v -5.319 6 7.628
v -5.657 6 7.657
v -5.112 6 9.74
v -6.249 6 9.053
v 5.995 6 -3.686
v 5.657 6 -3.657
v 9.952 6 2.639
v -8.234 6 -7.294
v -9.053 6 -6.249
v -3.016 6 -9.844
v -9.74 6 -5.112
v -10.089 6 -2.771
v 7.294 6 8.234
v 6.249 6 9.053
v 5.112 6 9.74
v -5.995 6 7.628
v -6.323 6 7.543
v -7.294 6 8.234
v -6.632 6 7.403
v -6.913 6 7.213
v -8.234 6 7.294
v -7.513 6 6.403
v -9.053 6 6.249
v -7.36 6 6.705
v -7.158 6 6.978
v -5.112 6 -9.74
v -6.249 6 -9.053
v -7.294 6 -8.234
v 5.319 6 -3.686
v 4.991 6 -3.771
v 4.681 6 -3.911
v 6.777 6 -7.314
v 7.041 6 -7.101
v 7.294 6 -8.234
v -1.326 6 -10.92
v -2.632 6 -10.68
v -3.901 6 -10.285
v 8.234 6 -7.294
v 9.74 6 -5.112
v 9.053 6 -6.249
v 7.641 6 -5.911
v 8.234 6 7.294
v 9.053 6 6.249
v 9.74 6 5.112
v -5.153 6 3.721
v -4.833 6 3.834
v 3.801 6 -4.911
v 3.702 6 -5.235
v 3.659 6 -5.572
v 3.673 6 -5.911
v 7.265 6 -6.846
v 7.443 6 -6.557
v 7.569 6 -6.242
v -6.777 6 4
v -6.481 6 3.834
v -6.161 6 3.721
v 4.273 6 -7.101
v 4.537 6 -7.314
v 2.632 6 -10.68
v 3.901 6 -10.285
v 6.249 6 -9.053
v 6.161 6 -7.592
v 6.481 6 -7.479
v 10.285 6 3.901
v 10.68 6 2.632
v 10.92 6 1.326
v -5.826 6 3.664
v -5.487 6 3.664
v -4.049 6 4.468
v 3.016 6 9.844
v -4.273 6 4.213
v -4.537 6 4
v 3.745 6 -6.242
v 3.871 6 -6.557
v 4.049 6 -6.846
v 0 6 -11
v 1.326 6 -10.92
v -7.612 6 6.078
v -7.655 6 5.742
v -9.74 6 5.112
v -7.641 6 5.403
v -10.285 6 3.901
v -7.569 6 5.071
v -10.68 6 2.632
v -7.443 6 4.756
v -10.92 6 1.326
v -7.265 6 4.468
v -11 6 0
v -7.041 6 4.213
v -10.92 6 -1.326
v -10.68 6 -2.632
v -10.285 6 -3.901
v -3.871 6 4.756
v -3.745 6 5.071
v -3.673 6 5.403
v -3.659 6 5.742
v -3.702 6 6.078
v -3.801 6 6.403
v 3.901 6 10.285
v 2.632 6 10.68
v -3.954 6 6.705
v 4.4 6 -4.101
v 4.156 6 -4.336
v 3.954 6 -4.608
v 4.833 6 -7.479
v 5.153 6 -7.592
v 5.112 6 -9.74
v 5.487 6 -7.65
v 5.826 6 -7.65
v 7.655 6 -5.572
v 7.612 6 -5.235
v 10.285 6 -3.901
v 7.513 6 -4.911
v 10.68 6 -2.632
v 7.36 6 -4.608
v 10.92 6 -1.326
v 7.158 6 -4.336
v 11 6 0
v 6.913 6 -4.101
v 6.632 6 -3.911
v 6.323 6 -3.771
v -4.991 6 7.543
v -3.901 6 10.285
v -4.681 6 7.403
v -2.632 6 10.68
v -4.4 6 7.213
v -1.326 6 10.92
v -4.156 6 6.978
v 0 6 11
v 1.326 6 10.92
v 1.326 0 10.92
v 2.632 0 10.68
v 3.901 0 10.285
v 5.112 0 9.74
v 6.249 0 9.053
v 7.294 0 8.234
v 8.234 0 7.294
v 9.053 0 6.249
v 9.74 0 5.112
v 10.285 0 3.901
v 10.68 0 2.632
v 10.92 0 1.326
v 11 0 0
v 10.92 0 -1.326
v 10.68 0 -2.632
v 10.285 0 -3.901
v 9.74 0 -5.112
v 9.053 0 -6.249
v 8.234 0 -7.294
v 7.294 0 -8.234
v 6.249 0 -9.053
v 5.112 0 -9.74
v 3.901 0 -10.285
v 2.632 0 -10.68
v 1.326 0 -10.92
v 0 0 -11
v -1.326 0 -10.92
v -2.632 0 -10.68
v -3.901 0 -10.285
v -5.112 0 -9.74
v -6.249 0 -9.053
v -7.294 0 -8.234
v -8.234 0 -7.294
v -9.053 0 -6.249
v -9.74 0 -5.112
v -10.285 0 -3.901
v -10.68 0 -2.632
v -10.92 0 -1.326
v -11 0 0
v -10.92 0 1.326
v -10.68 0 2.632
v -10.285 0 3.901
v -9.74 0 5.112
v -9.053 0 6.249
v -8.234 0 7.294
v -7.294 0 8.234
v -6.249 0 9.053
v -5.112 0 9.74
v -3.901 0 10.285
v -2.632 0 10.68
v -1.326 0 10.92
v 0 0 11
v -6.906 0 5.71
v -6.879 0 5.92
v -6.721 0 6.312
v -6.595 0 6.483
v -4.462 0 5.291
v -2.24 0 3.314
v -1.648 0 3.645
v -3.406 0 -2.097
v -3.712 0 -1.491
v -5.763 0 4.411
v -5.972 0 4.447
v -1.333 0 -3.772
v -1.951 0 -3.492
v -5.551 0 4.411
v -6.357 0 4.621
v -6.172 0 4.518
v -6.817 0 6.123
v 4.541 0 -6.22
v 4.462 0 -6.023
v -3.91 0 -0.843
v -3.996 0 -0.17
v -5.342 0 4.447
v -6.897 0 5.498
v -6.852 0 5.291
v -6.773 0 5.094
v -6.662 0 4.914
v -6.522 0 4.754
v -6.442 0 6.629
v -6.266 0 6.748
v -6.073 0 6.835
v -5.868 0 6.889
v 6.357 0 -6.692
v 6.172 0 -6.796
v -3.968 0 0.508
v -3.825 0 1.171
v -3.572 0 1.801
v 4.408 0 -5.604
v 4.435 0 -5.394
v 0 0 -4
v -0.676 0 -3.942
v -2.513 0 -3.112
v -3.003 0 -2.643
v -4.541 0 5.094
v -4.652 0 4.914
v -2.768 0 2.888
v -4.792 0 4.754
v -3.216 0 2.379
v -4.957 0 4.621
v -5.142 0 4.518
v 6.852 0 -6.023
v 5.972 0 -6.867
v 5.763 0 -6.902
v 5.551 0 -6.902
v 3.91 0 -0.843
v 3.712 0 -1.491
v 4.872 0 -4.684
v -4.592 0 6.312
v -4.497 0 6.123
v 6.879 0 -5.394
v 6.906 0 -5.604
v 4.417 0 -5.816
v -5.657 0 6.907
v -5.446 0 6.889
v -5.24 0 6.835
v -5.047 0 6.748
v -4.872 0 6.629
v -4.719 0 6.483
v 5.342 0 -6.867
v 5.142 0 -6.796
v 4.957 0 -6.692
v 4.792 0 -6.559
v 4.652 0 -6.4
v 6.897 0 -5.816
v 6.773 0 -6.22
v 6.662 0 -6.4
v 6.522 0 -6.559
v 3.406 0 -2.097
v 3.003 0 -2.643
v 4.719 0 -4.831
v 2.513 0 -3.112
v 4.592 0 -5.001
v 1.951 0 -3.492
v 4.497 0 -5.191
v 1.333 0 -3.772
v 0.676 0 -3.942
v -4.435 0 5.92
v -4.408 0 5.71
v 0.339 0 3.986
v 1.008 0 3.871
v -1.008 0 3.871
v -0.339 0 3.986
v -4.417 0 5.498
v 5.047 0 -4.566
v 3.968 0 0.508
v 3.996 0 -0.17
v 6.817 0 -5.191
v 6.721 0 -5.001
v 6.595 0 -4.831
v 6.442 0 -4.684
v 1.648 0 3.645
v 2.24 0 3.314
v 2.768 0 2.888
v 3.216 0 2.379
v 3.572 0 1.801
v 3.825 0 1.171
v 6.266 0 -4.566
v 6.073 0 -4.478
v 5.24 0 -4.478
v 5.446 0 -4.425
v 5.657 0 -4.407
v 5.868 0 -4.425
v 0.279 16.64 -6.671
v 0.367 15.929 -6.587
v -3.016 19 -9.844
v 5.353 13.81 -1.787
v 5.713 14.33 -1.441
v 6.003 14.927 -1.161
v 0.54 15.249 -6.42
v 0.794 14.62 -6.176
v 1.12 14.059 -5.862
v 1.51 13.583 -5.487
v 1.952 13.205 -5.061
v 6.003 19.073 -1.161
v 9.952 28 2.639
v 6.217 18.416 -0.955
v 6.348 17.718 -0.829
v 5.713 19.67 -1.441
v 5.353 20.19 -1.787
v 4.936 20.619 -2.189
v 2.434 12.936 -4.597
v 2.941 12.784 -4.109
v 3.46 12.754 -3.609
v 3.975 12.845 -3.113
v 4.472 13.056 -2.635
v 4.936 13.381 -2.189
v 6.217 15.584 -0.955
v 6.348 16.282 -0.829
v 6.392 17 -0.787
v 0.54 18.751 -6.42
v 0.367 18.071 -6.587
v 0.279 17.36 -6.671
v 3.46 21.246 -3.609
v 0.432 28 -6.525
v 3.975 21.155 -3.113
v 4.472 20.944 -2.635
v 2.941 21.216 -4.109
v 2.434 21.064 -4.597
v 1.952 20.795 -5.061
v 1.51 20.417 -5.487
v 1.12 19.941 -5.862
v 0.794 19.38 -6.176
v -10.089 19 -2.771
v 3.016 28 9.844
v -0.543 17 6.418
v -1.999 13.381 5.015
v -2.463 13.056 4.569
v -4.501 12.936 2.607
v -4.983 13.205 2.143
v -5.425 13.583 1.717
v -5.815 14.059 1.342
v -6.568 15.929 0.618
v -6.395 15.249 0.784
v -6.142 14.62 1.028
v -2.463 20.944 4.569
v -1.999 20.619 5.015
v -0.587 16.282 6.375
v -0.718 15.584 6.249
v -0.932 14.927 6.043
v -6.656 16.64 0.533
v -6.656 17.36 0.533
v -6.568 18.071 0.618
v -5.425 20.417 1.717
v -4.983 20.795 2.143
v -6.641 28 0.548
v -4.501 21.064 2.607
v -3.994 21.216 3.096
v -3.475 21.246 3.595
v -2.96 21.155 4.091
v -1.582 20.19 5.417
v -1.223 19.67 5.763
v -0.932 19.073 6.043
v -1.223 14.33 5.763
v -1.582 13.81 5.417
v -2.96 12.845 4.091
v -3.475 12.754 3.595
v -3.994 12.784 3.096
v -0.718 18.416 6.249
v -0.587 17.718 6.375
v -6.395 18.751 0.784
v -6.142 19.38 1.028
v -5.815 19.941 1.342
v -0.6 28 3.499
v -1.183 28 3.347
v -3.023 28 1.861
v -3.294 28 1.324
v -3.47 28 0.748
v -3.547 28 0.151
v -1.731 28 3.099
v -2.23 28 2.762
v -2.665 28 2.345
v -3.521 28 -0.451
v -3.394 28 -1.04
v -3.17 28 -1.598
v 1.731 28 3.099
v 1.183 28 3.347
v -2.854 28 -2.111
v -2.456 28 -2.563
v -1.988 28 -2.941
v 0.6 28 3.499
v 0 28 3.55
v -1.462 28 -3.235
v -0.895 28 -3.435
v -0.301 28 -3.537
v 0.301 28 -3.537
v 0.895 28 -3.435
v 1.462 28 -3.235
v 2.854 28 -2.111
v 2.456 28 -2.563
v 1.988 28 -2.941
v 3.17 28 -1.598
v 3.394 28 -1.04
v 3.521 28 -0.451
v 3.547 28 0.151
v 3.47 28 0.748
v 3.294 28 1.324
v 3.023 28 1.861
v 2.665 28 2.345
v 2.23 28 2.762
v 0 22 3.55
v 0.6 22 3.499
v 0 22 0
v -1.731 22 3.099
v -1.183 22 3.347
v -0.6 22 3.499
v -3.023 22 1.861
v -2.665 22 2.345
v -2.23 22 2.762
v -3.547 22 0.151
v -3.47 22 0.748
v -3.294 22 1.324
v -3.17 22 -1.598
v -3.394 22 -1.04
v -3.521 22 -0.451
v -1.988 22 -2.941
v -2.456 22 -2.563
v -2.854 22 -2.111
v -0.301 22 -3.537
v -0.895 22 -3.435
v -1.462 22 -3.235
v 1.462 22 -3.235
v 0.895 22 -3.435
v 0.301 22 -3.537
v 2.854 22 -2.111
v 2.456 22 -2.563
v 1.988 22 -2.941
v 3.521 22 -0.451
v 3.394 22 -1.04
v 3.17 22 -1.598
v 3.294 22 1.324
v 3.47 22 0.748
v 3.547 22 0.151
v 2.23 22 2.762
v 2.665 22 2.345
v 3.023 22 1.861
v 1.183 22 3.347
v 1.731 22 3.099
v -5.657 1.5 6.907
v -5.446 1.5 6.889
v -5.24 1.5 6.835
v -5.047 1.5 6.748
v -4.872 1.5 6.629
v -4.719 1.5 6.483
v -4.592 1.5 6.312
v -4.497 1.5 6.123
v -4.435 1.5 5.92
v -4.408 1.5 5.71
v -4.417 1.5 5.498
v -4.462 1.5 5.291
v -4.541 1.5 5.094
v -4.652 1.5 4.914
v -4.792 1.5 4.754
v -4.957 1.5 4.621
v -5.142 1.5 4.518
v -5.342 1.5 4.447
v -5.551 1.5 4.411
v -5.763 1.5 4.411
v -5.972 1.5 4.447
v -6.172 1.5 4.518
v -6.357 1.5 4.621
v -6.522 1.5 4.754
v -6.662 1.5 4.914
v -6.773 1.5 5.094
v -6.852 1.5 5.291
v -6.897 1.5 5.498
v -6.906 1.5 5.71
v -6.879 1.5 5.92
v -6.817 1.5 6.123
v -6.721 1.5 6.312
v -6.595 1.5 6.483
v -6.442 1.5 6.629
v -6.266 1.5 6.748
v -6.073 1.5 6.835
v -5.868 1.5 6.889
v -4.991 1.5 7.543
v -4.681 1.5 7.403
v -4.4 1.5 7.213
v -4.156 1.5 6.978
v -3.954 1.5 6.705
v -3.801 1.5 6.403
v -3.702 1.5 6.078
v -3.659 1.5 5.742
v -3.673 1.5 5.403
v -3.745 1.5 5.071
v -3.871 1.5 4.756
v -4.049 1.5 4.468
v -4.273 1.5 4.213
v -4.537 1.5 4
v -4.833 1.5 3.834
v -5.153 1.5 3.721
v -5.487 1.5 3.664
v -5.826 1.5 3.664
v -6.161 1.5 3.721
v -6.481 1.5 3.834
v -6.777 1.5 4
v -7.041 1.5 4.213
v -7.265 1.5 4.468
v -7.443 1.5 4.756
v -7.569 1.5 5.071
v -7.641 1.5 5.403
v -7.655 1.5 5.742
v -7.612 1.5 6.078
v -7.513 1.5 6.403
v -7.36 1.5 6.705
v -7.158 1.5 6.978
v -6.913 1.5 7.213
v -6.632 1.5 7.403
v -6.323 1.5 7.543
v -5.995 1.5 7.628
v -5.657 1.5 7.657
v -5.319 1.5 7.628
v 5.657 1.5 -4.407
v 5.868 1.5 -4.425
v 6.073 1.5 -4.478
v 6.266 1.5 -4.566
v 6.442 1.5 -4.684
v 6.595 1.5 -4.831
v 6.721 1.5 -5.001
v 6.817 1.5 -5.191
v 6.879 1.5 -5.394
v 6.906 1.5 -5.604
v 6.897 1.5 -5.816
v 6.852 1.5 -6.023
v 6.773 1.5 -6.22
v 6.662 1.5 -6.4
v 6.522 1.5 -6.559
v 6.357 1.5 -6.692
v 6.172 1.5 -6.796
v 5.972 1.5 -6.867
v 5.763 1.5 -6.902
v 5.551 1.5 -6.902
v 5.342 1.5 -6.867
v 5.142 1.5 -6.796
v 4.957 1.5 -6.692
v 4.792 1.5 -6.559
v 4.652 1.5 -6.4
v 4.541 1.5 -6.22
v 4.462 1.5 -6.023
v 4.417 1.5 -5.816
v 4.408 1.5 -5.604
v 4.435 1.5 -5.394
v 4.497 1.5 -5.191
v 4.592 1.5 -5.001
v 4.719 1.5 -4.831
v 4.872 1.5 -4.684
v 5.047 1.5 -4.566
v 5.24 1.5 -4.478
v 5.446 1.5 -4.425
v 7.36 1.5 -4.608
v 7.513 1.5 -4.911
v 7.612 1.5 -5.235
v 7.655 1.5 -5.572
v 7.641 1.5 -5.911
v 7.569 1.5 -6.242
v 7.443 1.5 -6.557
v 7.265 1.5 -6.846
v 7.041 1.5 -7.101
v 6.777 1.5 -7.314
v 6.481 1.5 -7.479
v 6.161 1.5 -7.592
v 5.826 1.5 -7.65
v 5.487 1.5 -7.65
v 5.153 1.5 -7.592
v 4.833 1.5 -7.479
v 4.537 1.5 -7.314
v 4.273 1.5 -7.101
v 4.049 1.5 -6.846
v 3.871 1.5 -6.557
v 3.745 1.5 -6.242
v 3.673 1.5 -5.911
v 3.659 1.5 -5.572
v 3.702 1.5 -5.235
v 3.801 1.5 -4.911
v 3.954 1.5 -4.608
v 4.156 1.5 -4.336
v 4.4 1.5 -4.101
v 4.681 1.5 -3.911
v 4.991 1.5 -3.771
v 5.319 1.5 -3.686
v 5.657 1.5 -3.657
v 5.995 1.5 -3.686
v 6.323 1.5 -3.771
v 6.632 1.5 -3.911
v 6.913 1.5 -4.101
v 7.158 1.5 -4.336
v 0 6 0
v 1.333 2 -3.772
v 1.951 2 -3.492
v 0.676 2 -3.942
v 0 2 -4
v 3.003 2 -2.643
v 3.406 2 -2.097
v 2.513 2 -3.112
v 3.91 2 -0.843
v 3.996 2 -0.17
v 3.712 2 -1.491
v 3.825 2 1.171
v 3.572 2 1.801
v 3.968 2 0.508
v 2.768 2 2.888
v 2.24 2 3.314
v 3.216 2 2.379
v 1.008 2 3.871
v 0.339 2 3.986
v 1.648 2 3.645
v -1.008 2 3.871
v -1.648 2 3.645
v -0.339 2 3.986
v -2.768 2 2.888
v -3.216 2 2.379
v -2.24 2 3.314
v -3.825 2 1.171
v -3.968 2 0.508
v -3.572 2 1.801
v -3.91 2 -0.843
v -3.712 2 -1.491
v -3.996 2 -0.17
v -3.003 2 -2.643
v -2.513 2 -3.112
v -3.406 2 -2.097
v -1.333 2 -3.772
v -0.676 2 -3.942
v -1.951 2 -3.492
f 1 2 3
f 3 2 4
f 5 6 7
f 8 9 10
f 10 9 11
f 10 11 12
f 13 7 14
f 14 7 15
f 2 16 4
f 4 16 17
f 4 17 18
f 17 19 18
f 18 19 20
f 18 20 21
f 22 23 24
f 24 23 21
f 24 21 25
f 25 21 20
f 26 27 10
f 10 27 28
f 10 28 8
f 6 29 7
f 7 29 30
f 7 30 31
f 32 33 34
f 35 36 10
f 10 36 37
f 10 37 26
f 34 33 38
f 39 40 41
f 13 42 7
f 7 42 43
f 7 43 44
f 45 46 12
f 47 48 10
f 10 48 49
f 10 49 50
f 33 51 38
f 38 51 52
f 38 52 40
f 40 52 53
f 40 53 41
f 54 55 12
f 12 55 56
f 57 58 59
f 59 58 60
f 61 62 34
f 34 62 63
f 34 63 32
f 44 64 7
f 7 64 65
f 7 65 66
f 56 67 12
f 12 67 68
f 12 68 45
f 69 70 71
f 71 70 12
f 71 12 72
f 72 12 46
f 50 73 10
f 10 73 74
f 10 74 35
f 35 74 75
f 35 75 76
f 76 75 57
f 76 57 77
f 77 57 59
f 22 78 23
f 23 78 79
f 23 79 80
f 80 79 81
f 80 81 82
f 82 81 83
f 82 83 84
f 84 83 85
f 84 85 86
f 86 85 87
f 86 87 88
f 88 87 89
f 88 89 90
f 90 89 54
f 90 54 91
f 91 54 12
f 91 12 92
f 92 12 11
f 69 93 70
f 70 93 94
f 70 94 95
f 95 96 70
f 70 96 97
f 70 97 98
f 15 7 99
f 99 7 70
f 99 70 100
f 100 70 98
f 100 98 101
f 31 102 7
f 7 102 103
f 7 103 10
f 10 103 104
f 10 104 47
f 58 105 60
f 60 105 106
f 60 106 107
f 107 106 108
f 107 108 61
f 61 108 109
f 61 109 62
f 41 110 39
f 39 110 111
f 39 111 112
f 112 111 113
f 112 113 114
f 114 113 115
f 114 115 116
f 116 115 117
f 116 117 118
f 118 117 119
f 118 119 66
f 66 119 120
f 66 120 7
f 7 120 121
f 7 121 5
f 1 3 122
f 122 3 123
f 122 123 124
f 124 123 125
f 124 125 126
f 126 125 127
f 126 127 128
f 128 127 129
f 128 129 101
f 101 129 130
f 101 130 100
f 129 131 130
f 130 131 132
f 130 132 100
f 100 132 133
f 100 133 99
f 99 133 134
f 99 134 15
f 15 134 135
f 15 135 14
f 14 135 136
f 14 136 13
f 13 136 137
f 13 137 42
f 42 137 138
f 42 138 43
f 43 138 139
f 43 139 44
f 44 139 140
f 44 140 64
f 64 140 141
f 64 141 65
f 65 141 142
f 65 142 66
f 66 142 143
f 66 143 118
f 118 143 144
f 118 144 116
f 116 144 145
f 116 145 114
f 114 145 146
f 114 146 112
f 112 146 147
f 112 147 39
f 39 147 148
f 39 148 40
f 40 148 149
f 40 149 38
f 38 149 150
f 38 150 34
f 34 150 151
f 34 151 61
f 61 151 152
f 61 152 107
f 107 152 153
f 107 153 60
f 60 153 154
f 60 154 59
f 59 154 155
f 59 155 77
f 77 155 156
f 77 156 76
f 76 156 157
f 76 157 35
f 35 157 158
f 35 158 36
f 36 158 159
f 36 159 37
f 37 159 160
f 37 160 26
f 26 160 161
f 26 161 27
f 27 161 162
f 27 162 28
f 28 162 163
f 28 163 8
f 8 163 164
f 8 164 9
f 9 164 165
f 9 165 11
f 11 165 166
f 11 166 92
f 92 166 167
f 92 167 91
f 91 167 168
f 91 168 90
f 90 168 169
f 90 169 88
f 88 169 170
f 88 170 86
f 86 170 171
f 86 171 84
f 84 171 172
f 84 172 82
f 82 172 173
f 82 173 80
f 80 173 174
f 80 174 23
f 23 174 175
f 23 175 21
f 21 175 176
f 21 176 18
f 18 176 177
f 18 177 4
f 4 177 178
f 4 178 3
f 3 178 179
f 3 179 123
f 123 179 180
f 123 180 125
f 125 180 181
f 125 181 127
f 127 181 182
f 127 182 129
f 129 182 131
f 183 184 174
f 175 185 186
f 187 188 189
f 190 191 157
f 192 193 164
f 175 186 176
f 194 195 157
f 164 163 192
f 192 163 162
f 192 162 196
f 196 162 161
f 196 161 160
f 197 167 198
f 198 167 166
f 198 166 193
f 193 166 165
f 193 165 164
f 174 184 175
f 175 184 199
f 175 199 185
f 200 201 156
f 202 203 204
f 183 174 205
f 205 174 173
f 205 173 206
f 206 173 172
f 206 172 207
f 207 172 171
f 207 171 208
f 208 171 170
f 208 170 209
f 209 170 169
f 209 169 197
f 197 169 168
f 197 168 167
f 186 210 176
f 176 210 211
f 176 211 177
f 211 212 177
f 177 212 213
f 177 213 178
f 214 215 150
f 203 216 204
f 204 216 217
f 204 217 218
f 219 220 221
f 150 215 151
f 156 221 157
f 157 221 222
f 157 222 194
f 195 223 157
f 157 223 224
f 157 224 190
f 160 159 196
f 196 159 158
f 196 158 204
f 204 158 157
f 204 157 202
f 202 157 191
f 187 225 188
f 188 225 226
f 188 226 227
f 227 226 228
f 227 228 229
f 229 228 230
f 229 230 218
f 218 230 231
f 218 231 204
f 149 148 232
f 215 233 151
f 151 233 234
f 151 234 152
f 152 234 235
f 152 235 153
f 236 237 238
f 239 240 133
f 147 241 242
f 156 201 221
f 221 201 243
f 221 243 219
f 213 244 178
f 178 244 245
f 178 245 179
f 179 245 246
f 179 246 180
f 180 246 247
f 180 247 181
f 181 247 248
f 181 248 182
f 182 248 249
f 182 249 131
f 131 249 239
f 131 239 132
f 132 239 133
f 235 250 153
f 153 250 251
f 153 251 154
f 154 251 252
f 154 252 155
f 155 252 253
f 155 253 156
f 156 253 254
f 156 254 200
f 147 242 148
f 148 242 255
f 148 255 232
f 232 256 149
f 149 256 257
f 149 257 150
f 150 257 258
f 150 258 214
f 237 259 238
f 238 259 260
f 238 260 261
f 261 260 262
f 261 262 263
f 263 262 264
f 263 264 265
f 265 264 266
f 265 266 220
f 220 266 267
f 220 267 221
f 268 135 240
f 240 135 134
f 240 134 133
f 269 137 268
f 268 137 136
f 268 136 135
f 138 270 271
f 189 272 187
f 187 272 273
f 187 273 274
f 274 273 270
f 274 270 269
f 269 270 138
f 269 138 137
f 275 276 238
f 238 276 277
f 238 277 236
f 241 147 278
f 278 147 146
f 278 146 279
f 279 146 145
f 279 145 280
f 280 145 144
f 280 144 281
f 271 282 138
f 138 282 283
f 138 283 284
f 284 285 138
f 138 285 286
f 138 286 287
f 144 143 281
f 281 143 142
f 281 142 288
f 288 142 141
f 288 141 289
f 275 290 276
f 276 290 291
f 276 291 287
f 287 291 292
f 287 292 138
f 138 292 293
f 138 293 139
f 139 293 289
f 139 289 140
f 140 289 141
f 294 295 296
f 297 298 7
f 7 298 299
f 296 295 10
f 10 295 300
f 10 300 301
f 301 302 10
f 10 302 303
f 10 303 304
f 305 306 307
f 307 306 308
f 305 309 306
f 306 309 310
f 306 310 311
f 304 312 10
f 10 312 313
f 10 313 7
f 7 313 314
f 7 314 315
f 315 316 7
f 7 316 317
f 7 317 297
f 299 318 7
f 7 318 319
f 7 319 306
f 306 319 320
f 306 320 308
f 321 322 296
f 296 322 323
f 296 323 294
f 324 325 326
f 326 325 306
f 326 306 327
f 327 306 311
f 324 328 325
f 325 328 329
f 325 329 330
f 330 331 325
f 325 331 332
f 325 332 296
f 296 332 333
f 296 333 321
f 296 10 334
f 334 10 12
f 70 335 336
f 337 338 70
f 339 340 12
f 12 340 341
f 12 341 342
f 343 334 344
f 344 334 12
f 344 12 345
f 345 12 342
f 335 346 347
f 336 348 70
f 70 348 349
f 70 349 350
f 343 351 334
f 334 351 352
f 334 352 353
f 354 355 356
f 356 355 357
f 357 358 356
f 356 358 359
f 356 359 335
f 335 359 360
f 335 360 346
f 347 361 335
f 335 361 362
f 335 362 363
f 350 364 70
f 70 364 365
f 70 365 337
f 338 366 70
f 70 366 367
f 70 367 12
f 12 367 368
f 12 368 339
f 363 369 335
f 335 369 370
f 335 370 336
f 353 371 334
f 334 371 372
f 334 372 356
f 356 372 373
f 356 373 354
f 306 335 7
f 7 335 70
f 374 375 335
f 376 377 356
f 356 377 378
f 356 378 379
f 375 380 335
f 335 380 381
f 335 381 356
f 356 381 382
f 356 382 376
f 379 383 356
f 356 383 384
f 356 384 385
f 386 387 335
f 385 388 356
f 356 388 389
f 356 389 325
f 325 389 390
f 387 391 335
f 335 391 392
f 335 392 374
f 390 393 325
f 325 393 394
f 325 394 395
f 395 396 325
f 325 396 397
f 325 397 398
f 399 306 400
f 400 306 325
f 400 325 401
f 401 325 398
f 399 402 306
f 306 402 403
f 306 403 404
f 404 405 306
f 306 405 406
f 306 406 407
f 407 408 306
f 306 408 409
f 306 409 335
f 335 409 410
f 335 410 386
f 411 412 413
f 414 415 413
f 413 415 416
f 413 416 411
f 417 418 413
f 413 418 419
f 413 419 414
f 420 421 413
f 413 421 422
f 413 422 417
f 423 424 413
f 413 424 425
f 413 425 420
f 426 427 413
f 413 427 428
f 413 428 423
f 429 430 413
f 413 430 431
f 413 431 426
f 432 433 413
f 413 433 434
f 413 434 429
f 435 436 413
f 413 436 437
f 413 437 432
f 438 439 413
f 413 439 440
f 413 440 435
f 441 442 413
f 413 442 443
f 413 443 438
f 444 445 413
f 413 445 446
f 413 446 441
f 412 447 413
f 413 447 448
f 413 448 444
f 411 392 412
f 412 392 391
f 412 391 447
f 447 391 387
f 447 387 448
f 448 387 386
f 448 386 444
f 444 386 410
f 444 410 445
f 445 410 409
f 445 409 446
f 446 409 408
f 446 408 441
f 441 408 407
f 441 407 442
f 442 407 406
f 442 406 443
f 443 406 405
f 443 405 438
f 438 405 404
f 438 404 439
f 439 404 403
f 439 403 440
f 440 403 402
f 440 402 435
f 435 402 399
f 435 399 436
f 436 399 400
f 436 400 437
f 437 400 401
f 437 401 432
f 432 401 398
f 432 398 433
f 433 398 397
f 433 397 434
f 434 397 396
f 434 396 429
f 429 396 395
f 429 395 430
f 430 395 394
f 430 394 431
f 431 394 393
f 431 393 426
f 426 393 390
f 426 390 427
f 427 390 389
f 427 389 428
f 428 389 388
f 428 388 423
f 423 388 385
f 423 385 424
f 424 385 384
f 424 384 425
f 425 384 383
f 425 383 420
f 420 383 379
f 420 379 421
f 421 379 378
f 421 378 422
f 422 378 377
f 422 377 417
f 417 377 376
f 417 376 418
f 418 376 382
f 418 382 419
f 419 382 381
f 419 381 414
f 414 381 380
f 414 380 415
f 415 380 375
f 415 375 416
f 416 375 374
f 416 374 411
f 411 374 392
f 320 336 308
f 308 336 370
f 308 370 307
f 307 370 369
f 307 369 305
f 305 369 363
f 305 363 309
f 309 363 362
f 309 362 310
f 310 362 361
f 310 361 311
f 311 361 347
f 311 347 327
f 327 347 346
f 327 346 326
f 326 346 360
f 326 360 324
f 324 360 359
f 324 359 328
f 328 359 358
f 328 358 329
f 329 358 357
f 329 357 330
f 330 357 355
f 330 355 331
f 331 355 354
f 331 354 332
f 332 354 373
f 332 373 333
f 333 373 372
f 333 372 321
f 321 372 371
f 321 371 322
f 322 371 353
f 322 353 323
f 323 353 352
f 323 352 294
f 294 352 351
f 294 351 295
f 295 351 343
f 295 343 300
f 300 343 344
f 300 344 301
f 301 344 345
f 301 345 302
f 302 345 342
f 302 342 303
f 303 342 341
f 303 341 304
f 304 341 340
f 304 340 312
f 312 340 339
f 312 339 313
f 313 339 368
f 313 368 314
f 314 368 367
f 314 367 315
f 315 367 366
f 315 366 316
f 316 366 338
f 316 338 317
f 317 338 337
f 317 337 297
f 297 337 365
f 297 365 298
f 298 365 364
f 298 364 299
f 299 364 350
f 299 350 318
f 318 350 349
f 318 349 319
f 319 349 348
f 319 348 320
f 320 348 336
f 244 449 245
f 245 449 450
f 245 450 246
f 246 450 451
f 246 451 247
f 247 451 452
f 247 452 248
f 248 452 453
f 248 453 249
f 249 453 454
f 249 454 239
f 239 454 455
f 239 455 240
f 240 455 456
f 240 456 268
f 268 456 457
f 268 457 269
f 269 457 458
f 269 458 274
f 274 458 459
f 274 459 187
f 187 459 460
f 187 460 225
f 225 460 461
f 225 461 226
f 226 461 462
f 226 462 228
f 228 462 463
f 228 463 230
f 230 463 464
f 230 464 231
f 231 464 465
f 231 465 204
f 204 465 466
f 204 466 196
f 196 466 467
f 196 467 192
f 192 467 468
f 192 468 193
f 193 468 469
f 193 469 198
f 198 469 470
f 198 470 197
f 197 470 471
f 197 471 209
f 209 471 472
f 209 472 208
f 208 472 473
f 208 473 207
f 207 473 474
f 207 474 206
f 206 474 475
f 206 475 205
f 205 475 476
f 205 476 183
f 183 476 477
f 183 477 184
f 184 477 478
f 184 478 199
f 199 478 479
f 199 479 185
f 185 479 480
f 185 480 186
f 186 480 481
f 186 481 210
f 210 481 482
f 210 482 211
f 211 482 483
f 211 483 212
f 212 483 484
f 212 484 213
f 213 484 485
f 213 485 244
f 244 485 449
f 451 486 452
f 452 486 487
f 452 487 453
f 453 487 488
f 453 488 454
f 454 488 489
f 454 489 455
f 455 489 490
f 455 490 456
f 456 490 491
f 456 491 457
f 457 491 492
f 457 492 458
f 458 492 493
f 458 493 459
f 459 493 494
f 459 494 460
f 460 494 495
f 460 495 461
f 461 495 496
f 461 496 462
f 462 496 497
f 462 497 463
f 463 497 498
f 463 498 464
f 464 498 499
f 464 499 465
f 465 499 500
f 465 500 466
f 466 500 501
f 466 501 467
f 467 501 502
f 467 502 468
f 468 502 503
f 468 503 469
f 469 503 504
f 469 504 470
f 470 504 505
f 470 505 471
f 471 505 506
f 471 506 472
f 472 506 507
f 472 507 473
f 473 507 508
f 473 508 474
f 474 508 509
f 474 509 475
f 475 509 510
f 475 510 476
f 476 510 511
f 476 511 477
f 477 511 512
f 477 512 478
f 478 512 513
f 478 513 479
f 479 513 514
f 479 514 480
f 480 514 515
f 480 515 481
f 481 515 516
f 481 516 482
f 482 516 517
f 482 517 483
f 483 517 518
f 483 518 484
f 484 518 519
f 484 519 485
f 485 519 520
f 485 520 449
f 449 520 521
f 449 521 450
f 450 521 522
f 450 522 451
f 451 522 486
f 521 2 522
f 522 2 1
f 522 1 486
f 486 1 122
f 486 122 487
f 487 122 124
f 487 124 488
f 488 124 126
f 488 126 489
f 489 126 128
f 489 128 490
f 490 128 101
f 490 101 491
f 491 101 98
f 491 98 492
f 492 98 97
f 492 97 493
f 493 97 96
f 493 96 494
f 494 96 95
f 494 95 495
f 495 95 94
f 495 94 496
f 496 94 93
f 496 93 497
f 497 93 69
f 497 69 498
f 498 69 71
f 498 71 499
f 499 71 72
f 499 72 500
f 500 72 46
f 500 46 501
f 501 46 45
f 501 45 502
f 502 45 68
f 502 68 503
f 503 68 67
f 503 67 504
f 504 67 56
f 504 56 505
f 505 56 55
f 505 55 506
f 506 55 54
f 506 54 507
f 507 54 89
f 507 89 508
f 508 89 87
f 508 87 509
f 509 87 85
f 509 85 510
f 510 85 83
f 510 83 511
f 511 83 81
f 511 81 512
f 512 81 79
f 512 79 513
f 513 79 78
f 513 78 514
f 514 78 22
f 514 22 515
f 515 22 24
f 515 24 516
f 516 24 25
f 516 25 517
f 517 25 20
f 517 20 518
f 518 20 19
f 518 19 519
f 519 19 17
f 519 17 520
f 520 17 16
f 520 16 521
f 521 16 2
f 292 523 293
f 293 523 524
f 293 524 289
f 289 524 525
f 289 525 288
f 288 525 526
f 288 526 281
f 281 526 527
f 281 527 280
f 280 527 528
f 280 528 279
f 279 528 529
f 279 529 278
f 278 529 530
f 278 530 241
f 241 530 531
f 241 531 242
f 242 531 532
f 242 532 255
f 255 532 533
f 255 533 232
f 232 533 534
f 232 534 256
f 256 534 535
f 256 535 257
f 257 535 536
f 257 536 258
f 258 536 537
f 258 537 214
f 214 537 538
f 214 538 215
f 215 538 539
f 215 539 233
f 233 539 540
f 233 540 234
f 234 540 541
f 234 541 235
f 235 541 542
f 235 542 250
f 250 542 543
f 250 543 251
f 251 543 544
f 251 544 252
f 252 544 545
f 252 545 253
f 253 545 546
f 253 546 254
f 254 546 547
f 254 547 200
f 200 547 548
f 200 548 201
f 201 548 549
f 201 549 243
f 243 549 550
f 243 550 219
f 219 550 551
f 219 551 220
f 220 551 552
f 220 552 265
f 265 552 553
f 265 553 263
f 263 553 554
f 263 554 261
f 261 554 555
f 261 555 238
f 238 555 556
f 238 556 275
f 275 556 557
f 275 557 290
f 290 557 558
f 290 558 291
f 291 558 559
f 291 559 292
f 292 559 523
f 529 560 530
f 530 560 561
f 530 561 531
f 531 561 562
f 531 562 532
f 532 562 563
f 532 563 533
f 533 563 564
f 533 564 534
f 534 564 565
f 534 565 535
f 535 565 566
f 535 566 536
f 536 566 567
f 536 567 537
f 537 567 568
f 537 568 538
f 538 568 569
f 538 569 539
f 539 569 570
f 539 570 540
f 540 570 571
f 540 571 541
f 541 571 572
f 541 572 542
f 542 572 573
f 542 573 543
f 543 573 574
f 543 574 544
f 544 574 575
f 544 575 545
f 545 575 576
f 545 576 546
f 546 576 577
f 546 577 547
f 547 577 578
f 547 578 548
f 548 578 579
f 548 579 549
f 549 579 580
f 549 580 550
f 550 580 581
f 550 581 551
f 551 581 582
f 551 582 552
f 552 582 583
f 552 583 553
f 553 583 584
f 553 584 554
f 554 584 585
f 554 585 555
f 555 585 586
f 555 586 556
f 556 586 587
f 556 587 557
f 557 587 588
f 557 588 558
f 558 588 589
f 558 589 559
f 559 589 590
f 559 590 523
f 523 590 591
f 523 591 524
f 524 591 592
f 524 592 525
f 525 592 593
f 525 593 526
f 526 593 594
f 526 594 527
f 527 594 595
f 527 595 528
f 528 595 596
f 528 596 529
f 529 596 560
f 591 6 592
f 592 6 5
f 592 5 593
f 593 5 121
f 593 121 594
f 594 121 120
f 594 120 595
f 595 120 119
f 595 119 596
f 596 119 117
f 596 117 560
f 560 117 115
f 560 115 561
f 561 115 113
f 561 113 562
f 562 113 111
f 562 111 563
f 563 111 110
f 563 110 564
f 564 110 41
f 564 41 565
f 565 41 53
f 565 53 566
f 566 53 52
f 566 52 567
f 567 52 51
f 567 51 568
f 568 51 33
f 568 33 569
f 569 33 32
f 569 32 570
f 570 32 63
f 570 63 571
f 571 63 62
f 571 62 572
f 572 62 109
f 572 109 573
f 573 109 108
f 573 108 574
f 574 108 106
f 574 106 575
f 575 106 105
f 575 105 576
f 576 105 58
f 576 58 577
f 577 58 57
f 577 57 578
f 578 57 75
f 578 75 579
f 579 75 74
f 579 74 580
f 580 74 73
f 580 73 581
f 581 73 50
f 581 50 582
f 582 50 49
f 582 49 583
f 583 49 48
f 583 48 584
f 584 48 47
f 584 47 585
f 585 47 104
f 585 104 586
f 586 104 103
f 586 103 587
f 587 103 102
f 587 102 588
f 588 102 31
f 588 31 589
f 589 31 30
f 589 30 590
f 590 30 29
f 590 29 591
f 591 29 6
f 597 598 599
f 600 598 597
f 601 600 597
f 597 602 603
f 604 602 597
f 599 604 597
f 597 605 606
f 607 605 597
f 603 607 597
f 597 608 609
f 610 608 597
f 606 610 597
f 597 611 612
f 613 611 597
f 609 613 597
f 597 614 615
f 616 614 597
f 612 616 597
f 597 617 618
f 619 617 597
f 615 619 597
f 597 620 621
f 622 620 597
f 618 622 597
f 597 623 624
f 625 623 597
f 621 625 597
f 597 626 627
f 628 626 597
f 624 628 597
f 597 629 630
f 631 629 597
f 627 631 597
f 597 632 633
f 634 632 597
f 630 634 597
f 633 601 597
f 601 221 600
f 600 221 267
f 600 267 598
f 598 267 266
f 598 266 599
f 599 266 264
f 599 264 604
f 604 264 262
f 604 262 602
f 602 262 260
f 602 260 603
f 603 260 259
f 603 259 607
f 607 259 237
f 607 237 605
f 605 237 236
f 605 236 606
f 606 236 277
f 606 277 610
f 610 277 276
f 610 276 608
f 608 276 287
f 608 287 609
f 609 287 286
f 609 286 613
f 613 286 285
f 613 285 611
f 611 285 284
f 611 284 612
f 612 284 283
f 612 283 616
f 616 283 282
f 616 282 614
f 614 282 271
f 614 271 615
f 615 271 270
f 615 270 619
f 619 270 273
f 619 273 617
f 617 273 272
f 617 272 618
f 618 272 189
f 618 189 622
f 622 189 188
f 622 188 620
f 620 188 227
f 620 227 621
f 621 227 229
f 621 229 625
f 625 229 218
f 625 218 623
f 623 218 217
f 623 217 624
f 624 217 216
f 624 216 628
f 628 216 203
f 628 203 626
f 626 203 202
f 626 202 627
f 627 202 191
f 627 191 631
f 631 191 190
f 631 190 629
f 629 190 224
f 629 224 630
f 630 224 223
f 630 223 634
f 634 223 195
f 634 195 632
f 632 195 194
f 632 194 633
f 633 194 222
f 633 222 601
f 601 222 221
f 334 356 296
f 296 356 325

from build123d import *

# Parameters (mm, degrees)
ESQUISSE1_W                                        = 11
ESQUISSE1_H                                        = 6
BOSS_EXTRU_1_DEPTH                                 = 22
DIAM_TRE_DU_PER_AGE_7_1_7_1_1_D                    = 7.1
DIAM_TRE_DU_PER_AGE_7_1_7_1_1_DEPTH                = 6
DIAM_TRE_DU_PER_AGE_8_5_8_5_1_D                    = 8.5
CHAMBRAGE_POUR_VIS_T_TE_HEXAGONALE_M21_D           = 2.5
CHAMBRAGE_POUR_VIS_T_TE_HEXAGONALE_M21_CBORE_D     = 4
CHAMBRAGE_POUR_VIS_T_TE_HEXAGONALE_M21_CBORE_DEPTH = 4.5
DIAM_TRE_DU_PER_AGE_8_0_8_1_D                      = 8
DIAM_TRE_DU_PER_AGE_8_0_8_1_DEPTH                  = 2
DIAM_TRE_DU_PER_AGE_8_0_8_1_TIP                    = 4
CHANFREIN1_SIZE                                    = 9
CHANFREIN1_SIZE2                                   = 4.785384885


with BuildPart() as part:
    # Esquisse1 → Révolution1 (revolve)
    with BuildSketch(Plane(origin=(0, 0, 0), x_dir=(-1, 0, 0), z_dir=(0, 0, -1)), mode=Mode.PRIVATE) as r_volution1_sk:
        with Locations((-5.5, 3)):
            Rectangle(ESQUISSE1_W, ESQUISSE1_H)
    revolve(r_volution1_sk.sketch.rotate(Axis((0, 0, 0), (0, 1, 0)), 270), axis=Axis((0, 0, 0), (0, 1, 0)))

    # Esquisse2 → Boss.-Extru.1 (add)
    with BuildSketch(Plane(origin=(0, 6, 0), x_dir=(-1, 0, 0), z_dir=(0, 1, 0))):
        Polygon((-9.95156463, 2.63938656), (-3.016441782, 9.843834567), (10.088792211, -2.771484138), (3.016441782, -9.843834567), align=None)
    extrude(amount=BOSS_EXTRU_1_DEPTH)

    # Diamètre du perçage Ø7.1 (7.1)1
    with Locations(Plane(origin=(0, 28, 0), x_dir=(1, 0, 0), z_dir=(0, 1, 0))):
        with Locations((0, 0)):
            Hole(DIAM_TRE_DU_PER_AGE_7_1_7_1_1_D / 2, depth=DIAM_TRE_DU_PER_AGE_7_1_7_1_1_DEPTH)

    # Diamètre du perçage Ø8.5 (8.5)1 (through all)
    with Locations(Plane(origin=(-3.467561424, 0, 3.602224003), x_dir=(0.7204448006982934, 0, 0.6935122847843406), z_dir=(-0.6935122847843406, 0, 0.7204448006982934))):
        with Locations((-0.19047619, 17)):
            Hole(DIAM_TRE_DU_PER_AGE_8_5_8_5_1_D / 2)

    # Chambrage pour vis à tête hexagonale M21 (through all)
    with Locations(Plane(origin=(0, 6, 0), x_dir=(1, 0, 0), z_dir=(0, 1, 0))):
        with Locations((5.656854249, 5.656854249), (-5.656854249, -5.656854249)):
            CounterBoreHole(CHAMBRAGE_POUR_VIS_T_TE_HEXAGONALE_M21_D / 2, CHAMBRAGE_POUR_VIS_T_TE_HEXAGONALE_M21_CBORE_D / 2, CHAMBRAGE_POUR_VIS_T_TE_HEXAGONALE_M21_CBORE_DEPTH)

    # Diamètre du perçage Ø8.0 (8)1
    with Locations(Plane(origin=(0, 0, 0), x_dir=(-1, 0, 0), z_dir=(0, -1, 0))):
        with Locations((0, 0)):
            Hole(DIAM_TRE_DU_PER_AGE_8_0_8_1_D / 2, depth=DIAM_TRE_DU_PER_AGE_8_0_8_1_DEPTH)
            with Locations((0, 0, -(DIAM_TRE_DU_PER_AGE_8_0_8_1_DEPTH + DIAM_TRE_DU_PER_AGE_8_0_8_1_TIP / 2))):  # 90° drill point
                Cone(0, DIAM_TRE_DU_PER_AGE_8_0_8_1_D / 2, DIAM_TRE_DU_PER_AGE_8_0_8_1_TIP, mode=Mode.SUBTRACT)

    # Chanfrein1
    chanfrein1_edges = [part.edges().sort_by_distance(p)[0] for p in [
        (-6.552616997, 28, -6.307659352),
    ]]
    chanfrein1_side = [part.faces().sort_by_distance(p)[0] for p in [
        (-6.552616997, 17, -6.307659352),
    ]]
    chamfer(chanfrein1_edges, length=CHANFREIN1_SIZE, length2=CHANFREIN1_SIZE2, reference=chanfrein1_side[0])


solid = part.part
